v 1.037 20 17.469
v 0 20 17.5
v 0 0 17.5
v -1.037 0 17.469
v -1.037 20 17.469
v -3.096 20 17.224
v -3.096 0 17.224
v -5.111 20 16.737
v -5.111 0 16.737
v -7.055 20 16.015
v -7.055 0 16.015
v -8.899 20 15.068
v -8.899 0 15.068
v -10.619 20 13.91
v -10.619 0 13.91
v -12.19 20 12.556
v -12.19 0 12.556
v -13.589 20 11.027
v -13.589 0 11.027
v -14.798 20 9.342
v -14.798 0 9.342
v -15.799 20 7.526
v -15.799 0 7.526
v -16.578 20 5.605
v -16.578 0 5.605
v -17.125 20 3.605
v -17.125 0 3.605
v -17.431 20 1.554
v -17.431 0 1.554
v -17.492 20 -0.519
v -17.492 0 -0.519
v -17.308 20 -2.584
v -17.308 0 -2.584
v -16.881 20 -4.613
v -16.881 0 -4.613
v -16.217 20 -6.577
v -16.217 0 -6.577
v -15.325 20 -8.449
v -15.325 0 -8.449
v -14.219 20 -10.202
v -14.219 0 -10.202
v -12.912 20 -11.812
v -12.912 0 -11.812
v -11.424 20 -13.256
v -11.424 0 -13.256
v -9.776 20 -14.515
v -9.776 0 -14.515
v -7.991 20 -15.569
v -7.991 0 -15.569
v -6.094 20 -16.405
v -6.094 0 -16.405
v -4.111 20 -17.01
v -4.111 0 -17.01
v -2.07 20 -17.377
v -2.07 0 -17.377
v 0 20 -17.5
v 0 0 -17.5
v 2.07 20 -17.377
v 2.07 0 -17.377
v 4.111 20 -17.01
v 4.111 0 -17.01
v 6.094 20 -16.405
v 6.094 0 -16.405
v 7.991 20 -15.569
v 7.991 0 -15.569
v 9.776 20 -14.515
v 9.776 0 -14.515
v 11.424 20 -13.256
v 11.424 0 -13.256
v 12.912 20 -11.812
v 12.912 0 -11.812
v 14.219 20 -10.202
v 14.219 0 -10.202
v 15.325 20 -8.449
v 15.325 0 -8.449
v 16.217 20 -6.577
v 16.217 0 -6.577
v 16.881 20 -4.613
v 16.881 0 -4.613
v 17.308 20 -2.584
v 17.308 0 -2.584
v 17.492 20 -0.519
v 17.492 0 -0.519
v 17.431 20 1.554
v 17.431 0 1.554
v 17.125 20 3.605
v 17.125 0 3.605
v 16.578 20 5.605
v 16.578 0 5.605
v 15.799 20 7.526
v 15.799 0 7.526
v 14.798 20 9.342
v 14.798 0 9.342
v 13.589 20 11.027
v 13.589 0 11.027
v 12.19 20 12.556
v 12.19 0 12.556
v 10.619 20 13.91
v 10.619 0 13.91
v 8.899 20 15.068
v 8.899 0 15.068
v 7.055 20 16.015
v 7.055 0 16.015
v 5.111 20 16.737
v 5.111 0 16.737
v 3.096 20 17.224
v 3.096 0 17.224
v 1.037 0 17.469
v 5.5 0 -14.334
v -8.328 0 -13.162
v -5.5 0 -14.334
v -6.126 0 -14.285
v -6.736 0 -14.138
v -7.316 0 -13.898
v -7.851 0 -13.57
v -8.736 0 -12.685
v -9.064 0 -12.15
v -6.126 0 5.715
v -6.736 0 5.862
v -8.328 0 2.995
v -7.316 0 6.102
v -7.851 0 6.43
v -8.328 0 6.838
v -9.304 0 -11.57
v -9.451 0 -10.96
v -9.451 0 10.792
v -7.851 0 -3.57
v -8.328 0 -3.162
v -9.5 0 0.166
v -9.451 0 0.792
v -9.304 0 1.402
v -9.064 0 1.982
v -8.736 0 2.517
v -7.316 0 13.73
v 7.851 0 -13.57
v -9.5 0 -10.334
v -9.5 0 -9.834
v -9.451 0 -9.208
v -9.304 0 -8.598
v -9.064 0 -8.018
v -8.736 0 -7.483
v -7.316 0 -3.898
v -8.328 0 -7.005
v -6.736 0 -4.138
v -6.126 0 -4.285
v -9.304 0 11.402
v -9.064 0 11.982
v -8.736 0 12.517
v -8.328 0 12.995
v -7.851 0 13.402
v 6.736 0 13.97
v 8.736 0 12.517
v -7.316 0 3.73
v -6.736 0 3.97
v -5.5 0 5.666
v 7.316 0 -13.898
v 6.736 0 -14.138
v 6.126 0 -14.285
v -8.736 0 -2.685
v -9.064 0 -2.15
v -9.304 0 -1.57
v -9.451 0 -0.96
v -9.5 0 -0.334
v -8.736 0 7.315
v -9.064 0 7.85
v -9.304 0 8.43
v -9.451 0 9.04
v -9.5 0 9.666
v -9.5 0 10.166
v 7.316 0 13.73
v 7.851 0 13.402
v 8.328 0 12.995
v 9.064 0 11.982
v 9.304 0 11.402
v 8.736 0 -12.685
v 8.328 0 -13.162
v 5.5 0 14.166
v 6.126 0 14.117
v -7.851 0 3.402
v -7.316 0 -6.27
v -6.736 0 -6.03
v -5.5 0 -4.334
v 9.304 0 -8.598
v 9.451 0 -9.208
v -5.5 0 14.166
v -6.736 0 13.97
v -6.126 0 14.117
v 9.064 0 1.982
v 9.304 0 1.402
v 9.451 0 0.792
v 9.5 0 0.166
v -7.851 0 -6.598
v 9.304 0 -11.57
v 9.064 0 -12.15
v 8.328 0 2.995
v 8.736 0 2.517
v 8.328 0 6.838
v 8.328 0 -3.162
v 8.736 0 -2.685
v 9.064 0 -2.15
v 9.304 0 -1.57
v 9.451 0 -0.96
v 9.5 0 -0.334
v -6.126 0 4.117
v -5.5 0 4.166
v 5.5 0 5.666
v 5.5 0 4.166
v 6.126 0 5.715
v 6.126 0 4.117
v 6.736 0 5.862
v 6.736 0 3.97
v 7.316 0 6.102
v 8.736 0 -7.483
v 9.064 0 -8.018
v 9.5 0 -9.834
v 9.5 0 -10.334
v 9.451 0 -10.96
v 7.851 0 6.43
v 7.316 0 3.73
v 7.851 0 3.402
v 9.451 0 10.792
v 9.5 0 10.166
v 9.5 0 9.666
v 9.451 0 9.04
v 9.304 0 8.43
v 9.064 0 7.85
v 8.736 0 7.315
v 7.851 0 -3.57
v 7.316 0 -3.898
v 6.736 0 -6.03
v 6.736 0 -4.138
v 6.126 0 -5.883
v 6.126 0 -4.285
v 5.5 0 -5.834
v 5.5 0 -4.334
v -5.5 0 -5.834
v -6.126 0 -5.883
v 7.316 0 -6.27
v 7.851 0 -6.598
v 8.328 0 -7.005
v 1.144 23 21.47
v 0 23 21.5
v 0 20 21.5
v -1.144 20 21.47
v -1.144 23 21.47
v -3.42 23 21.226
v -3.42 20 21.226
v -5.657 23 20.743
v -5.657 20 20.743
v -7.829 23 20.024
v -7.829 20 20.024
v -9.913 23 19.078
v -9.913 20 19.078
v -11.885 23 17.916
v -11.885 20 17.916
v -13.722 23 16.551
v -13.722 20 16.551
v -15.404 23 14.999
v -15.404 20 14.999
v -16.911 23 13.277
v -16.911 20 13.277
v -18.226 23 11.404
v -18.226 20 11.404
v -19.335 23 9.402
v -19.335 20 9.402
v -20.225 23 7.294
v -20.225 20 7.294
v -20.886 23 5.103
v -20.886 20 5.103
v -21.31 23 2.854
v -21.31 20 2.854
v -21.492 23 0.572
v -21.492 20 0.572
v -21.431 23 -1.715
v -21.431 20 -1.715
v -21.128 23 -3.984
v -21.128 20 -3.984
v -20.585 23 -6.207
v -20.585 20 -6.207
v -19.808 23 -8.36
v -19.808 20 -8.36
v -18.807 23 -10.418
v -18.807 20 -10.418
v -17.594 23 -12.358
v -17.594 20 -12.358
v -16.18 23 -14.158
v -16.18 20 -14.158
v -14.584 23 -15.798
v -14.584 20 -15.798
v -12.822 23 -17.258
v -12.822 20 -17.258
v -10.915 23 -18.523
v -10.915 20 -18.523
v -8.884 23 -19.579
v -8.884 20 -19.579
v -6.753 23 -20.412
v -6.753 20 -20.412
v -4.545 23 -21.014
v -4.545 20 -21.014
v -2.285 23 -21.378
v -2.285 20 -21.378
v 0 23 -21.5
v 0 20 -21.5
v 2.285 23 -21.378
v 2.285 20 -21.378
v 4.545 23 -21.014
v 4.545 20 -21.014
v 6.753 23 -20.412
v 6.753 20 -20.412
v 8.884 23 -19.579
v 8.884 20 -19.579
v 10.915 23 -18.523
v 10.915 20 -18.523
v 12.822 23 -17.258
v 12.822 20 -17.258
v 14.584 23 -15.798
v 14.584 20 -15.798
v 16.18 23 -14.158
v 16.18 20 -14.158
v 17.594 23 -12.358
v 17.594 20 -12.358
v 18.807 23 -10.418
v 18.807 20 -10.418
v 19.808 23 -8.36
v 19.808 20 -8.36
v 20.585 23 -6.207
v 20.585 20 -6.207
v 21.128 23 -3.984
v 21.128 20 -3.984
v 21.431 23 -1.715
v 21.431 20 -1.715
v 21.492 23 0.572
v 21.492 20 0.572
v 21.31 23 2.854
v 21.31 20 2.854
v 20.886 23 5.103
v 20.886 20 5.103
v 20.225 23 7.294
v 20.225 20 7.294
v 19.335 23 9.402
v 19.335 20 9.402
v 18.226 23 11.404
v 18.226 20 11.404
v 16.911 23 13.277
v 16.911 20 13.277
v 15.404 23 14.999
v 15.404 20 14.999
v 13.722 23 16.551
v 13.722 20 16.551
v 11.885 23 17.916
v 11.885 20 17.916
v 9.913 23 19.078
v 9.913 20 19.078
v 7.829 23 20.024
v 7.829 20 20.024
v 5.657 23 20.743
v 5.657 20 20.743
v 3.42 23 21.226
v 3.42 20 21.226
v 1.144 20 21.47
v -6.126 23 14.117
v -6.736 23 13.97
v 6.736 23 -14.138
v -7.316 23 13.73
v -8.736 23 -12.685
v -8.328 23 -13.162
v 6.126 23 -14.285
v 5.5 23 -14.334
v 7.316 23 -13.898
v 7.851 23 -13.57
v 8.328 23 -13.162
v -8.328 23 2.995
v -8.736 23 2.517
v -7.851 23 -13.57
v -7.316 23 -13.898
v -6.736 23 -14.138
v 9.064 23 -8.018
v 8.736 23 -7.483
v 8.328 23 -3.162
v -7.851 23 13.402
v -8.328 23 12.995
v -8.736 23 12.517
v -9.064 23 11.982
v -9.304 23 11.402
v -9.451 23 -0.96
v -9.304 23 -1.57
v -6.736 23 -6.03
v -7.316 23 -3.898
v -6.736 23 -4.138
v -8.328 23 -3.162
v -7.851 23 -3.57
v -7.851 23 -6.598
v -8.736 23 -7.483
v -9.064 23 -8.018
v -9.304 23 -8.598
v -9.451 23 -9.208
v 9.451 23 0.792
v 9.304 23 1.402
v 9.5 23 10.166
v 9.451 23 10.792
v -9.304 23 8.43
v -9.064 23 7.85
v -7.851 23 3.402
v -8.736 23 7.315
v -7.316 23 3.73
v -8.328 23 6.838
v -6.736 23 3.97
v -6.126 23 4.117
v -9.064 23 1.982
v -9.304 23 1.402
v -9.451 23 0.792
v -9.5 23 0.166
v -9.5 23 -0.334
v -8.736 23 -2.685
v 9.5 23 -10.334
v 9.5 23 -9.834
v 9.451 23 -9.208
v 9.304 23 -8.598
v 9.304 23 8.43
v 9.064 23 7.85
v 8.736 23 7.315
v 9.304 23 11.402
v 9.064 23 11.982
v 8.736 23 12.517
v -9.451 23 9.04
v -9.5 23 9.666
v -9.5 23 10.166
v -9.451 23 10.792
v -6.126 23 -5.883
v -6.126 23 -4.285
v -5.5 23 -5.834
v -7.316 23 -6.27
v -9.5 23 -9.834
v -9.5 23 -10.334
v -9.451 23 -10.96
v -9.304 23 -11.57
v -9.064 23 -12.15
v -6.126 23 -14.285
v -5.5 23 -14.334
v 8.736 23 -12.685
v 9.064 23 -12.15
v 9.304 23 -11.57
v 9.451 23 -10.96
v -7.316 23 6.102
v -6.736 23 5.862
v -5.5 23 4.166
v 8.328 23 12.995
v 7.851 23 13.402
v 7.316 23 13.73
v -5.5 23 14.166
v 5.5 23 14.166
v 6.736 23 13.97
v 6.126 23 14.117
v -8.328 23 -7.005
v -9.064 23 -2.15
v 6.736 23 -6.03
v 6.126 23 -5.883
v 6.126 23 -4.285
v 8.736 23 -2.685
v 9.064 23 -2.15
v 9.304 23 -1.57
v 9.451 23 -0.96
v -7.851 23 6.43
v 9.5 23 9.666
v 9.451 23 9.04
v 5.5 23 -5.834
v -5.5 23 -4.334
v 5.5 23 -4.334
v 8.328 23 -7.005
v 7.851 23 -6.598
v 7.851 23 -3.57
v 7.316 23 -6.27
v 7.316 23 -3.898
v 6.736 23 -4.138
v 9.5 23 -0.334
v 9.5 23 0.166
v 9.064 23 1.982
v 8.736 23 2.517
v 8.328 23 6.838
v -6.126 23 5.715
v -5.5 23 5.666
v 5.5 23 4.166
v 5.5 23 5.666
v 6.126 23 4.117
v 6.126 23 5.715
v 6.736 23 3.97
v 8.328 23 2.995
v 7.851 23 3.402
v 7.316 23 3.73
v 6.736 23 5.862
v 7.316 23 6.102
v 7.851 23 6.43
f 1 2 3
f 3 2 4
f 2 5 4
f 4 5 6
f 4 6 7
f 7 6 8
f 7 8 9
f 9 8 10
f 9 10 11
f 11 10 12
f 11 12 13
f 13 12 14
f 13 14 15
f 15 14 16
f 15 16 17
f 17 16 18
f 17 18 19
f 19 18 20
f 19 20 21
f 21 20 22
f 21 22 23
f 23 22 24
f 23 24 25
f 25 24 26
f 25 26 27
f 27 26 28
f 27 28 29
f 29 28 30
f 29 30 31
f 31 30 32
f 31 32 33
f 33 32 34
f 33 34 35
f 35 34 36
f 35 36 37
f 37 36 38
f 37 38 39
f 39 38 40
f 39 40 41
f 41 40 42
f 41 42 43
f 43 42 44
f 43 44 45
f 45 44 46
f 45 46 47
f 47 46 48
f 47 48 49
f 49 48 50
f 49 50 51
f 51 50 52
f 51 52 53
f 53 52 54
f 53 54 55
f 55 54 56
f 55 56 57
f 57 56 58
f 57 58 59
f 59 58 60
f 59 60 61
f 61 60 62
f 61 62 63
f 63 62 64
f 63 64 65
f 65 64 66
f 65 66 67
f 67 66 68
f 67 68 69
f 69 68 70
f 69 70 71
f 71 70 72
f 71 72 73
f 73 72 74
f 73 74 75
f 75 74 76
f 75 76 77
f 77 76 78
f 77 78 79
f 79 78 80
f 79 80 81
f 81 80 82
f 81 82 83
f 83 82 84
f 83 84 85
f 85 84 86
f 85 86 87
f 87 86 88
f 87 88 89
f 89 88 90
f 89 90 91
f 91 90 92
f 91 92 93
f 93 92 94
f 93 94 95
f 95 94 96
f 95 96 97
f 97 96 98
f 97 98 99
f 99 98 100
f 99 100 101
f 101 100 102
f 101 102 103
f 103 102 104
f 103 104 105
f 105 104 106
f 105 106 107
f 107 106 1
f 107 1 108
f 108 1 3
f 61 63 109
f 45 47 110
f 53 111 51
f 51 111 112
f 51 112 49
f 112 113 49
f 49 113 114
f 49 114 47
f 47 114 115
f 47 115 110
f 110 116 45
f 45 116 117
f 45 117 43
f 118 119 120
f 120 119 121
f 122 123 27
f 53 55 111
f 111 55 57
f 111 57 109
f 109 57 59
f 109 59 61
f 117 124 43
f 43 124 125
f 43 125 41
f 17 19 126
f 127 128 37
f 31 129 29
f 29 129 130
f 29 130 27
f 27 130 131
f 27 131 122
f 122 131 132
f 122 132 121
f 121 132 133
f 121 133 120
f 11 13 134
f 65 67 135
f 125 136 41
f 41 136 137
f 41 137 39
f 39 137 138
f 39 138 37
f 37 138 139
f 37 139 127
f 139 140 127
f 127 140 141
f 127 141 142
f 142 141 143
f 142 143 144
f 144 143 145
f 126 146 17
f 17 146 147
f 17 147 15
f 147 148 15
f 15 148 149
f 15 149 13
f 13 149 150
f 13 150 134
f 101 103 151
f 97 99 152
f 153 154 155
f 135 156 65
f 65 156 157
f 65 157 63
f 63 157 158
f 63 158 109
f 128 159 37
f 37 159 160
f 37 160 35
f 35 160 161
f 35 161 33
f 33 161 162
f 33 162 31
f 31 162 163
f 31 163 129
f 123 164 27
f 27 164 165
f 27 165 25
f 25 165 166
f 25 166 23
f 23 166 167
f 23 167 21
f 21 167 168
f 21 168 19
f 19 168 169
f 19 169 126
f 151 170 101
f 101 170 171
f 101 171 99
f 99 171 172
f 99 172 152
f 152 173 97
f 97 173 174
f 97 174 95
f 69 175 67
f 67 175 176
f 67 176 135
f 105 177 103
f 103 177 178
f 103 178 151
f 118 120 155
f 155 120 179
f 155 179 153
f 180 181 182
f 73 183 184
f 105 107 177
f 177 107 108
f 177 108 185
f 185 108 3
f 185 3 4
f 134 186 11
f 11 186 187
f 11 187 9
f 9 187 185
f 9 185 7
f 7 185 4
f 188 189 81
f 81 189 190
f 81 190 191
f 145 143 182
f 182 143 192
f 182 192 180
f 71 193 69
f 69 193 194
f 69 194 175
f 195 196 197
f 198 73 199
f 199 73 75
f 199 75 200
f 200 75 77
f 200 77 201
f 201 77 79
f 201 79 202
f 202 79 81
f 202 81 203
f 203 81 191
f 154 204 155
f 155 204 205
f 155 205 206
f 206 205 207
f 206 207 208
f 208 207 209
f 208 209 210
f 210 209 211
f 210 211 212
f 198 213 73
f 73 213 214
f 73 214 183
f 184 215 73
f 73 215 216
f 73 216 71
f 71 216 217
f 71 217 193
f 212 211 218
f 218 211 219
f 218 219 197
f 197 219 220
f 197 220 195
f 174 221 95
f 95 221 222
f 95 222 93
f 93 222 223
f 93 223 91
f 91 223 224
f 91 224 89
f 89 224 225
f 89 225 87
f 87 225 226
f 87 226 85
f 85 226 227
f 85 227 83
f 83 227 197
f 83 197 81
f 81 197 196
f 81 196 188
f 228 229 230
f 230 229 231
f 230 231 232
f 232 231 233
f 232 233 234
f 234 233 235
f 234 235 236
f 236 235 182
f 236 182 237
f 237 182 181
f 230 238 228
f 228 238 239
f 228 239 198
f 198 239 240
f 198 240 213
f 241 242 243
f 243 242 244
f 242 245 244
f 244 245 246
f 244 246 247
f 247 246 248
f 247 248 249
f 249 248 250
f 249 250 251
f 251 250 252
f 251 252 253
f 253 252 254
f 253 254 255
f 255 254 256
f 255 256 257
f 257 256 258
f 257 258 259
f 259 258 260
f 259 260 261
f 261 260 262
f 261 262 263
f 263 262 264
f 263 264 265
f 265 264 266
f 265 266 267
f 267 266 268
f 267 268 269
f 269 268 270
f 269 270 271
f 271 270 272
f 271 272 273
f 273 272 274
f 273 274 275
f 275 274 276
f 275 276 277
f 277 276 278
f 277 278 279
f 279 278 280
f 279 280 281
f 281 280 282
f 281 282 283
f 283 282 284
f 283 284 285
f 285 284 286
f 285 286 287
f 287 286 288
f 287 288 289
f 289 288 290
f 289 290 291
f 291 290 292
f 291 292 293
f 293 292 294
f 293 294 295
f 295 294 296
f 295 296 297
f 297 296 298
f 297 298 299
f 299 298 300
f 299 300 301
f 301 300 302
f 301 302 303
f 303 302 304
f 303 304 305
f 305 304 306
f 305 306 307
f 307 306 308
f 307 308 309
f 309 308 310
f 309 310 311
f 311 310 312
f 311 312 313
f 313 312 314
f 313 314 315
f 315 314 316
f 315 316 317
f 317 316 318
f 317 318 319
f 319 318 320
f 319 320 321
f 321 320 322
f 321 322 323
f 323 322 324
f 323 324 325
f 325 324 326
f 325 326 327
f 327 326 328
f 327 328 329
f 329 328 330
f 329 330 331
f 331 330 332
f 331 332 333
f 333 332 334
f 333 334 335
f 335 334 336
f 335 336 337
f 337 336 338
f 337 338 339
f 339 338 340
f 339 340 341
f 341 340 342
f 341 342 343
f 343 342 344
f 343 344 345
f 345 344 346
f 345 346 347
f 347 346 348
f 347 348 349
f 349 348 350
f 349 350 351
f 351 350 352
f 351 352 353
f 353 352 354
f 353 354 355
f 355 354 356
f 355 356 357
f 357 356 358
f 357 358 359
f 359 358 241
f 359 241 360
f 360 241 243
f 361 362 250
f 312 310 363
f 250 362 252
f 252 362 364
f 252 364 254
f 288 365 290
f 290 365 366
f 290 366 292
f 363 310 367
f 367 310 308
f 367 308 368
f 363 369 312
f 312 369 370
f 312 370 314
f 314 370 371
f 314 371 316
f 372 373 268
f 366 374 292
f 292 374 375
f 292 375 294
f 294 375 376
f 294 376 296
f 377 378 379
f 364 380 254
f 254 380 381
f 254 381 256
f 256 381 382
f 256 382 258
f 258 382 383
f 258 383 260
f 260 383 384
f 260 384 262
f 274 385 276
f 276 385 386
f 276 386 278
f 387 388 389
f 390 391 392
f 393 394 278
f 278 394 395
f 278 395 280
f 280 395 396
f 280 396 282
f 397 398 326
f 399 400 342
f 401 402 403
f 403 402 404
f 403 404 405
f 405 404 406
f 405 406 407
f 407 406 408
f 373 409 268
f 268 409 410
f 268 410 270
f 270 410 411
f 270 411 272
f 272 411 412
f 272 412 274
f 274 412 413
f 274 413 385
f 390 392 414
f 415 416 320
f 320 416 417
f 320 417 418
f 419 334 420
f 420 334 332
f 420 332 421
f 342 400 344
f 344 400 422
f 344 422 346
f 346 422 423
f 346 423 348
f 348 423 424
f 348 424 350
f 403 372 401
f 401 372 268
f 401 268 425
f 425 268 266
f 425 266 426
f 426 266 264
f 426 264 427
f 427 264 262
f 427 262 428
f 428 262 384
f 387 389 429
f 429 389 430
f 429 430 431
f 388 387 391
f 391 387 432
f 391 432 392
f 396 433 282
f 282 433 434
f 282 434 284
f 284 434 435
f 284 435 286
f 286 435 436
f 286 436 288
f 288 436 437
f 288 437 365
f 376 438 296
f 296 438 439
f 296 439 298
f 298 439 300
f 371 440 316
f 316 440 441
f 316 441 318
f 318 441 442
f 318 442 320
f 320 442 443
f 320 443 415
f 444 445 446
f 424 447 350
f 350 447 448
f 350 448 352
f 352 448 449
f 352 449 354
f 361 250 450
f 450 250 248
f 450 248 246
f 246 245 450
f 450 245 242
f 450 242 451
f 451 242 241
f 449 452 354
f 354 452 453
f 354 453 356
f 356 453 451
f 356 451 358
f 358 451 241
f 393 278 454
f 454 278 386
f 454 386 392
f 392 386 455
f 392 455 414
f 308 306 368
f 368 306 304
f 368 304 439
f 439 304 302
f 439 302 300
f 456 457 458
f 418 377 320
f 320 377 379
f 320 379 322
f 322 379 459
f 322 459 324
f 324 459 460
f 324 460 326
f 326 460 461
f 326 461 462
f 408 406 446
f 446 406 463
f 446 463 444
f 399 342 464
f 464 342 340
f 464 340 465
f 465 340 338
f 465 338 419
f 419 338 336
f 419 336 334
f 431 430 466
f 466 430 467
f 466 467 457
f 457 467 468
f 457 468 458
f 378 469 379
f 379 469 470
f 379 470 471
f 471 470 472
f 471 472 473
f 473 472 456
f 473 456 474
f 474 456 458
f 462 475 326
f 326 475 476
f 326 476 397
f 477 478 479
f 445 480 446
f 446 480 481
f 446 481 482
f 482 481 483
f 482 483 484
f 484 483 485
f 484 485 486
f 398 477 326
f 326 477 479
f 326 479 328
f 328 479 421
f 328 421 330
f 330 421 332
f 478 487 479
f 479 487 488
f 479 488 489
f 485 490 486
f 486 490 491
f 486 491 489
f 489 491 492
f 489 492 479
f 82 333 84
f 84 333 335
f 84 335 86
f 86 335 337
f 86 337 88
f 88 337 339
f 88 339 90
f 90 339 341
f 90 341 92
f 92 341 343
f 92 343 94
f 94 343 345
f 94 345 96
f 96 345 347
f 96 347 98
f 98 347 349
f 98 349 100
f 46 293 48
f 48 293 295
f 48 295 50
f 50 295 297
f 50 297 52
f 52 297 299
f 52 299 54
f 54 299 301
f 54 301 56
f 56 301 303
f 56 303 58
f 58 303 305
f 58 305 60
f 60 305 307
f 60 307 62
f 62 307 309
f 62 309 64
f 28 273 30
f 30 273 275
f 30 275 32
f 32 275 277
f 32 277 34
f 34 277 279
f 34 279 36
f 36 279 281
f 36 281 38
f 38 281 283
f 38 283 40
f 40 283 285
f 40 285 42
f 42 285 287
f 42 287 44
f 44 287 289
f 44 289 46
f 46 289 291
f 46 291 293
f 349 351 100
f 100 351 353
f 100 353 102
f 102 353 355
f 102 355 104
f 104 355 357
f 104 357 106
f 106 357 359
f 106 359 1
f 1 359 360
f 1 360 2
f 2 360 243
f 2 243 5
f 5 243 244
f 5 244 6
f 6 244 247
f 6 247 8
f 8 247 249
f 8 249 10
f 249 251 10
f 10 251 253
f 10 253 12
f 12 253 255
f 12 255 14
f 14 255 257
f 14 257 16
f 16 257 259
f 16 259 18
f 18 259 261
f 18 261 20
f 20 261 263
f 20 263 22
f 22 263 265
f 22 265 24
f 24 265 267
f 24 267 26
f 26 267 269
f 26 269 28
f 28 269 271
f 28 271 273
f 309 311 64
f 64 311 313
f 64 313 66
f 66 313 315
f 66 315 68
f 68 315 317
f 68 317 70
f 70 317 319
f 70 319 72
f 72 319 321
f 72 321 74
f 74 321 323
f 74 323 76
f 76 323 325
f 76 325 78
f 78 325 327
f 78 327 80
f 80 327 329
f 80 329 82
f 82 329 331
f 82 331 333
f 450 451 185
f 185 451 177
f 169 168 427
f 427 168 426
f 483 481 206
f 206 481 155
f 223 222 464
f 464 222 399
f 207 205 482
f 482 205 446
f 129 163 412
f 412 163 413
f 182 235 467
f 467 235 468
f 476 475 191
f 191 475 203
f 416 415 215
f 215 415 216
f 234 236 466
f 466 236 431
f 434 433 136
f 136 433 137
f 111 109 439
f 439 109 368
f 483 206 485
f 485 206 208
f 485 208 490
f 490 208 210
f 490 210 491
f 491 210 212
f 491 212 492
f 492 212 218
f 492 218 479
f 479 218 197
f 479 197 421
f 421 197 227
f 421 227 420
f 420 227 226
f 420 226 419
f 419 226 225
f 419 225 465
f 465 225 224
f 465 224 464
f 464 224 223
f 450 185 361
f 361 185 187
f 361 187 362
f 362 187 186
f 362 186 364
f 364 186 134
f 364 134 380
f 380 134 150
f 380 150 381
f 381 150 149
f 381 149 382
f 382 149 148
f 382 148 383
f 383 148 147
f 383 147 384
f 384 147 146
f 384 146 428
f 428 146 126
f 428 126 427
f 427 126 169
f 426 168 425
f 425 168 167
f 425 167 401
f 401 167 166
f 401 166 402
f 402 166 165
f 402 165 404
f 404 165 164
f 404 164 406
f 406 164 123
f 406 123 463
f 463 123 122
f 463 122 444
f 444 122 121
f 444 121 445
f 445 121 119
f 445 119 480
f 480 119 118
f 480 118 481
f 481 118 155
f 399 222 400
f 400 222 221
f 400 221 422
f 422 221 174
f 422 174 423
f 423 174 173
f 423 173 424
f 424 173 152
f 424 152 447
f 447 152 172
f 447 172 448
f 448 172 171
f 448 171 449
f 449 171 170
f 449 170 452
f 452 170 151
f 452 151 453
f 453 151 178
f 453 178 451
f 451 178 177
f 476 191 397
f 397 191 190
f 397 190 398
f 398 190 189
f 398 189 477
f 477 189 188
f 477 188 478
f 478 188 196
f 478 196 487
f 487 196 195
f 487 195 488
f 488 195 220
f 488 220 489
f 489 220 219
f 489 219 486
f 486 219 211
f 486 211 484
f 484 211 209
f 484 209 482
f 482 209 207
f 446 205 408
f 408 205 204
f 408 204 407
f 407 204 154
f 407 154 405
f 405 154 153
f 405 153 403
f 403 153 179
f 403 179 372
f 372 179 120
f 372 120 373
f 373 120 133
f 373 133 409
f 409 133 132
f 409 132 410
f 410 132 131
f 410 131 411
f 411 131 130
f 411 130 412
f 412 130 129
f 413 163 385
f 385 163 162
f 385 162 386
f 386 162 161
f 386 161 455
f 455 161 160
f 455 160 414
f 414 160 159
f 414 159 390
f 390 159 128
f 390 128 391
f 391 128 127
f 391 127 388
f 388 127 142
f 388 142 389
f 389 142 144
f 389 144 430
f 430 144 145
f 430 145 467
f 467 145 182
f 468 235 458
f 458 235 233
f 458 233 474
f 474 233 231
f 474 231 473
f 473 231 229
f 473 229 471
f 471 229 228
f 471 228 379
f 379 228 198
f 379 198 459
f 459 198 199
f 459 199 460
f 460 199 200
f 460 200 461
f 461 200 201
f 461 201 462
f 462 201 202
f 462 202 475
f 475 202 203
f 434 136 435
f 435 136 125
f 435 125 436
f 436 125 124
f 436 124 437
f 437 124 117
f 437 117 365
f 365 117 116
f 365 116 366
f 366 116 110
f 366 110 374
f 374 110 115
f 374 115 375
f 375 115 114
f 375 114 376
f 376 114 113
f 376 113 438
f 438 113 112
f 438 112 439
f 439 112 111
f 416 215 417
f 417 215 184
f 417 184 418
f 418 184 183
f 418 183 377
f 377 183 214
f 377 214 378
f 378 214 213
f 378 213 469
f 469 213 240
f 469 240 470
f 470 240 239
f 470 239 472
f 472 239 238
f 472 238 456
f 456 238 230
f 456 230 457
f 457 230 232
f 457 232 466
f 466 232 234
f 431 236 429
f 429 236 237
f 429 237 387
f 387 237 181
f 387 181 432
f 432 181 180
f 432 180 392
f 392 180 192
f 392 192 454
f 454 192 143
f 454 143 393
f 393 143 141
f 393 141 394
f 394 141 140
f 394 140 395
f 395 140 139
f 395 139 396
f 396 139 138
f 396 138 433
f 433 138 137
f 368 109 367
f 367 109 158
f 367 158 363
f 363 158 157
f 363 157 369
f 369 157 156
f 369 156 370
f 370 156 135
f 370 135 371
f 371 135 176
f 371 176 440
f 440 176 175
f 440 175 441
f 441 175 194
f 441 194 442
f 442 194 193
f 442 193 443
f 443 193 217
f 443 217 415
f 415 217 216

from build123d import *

# Parameters (mm, degrees)
SKETCH1_R           = 17.5
BOSS_EXTRUDE1_DEPTH = 20
SKETCH2_R           = 21.5
BOSS_EXTRUDE2_DEPTH = 3
SKETCH3_W           = 19
SKETCH3_H           = 8.5
CUT_EXTRUDE3_DEPTH  = 23
FILLET11_R          = 4
FILLET12_R          = 4


with BuildPart() as part:
    # Sketch1 → Boss-Extrude1 (new body)
    with BuildSketch(Plane(origin=(0, 0, 0), x_dir=(1, 0, 0), z_dir=(0, 1, 0))):
        with Locations(Location((0, 0, 0), (0, 0, 270))):
            Circle(SKETCH1_R)
    extrude(amount=BOSS_EXTRUDE1_DEPTH)

    # Sketch2 → Boss-Extrude2 (add)
    with BuildSketch(Plane(origin=(0, 20, 0), x_dir=(1, 0, 0), z_dir=(0, 1, 0))):
        with Locations(Location((0, 0, 0), (0, 0, 270))):
            Circle(SKETCH2_R)
    extrude(amount=BOSS_EXTRUDE2_DEPTH)

    # Sketch3 → Cut-Extrude3 (cut)
    with BuildSketch(Plane(origin=(0, 23, 0), x_dir=(1, 0, 0), z_dir=(0, 1, 0))):
        with Locations((0, 0.083811037)):
            Rectangle(SKETCH3_W, SKETCH3_H)
        with Locations((0, 10.083811037)):
            Rectangle(SKETCH3_W, SKETCH3_H)
        with Locations((0, -9.916188963)):
            Rectangle(SKETCH3_W, SKETCH3_H)
    extrude(amount=-CUT_EXTRUDE3_DEPTH, mode=Mode.SUBTRACT)

    # Fillet11
    fillet11_edges = [part.edges().sort_by_distance(p)[0] for p in [
        (9.5, 11.5, 4.166188963),
        (-9.5, 11.5, 4.166188963),
        (-9.5, 11.5, -4.333811037),
        (9.5, 11.5, -4.333811037),
        (9.5, 11.5, 14.166188963),
        (-9.5, 11.5, 14.166188963),
        (-9.5, 11.5, 5.666188963),
        (9.5, 11.5, 5.666188963),
    ]]
    fillet(fillet11_edges, radius=FILLET11_R)

    # Fillet12
    fillet12_edges = [part.edges().sort_by_distance(p)[0] for p in [
        (9.5, 11.5, -14.333811037),
        (9.5, 11.5, -5.833811037),
        (-9.5, 11.5, -5.833811037),
        (-9.5, 11.5, -14.333811037),
    ]]
    fillet(fillet12_edges, radius=FILLET12_R)


solid = part.part
